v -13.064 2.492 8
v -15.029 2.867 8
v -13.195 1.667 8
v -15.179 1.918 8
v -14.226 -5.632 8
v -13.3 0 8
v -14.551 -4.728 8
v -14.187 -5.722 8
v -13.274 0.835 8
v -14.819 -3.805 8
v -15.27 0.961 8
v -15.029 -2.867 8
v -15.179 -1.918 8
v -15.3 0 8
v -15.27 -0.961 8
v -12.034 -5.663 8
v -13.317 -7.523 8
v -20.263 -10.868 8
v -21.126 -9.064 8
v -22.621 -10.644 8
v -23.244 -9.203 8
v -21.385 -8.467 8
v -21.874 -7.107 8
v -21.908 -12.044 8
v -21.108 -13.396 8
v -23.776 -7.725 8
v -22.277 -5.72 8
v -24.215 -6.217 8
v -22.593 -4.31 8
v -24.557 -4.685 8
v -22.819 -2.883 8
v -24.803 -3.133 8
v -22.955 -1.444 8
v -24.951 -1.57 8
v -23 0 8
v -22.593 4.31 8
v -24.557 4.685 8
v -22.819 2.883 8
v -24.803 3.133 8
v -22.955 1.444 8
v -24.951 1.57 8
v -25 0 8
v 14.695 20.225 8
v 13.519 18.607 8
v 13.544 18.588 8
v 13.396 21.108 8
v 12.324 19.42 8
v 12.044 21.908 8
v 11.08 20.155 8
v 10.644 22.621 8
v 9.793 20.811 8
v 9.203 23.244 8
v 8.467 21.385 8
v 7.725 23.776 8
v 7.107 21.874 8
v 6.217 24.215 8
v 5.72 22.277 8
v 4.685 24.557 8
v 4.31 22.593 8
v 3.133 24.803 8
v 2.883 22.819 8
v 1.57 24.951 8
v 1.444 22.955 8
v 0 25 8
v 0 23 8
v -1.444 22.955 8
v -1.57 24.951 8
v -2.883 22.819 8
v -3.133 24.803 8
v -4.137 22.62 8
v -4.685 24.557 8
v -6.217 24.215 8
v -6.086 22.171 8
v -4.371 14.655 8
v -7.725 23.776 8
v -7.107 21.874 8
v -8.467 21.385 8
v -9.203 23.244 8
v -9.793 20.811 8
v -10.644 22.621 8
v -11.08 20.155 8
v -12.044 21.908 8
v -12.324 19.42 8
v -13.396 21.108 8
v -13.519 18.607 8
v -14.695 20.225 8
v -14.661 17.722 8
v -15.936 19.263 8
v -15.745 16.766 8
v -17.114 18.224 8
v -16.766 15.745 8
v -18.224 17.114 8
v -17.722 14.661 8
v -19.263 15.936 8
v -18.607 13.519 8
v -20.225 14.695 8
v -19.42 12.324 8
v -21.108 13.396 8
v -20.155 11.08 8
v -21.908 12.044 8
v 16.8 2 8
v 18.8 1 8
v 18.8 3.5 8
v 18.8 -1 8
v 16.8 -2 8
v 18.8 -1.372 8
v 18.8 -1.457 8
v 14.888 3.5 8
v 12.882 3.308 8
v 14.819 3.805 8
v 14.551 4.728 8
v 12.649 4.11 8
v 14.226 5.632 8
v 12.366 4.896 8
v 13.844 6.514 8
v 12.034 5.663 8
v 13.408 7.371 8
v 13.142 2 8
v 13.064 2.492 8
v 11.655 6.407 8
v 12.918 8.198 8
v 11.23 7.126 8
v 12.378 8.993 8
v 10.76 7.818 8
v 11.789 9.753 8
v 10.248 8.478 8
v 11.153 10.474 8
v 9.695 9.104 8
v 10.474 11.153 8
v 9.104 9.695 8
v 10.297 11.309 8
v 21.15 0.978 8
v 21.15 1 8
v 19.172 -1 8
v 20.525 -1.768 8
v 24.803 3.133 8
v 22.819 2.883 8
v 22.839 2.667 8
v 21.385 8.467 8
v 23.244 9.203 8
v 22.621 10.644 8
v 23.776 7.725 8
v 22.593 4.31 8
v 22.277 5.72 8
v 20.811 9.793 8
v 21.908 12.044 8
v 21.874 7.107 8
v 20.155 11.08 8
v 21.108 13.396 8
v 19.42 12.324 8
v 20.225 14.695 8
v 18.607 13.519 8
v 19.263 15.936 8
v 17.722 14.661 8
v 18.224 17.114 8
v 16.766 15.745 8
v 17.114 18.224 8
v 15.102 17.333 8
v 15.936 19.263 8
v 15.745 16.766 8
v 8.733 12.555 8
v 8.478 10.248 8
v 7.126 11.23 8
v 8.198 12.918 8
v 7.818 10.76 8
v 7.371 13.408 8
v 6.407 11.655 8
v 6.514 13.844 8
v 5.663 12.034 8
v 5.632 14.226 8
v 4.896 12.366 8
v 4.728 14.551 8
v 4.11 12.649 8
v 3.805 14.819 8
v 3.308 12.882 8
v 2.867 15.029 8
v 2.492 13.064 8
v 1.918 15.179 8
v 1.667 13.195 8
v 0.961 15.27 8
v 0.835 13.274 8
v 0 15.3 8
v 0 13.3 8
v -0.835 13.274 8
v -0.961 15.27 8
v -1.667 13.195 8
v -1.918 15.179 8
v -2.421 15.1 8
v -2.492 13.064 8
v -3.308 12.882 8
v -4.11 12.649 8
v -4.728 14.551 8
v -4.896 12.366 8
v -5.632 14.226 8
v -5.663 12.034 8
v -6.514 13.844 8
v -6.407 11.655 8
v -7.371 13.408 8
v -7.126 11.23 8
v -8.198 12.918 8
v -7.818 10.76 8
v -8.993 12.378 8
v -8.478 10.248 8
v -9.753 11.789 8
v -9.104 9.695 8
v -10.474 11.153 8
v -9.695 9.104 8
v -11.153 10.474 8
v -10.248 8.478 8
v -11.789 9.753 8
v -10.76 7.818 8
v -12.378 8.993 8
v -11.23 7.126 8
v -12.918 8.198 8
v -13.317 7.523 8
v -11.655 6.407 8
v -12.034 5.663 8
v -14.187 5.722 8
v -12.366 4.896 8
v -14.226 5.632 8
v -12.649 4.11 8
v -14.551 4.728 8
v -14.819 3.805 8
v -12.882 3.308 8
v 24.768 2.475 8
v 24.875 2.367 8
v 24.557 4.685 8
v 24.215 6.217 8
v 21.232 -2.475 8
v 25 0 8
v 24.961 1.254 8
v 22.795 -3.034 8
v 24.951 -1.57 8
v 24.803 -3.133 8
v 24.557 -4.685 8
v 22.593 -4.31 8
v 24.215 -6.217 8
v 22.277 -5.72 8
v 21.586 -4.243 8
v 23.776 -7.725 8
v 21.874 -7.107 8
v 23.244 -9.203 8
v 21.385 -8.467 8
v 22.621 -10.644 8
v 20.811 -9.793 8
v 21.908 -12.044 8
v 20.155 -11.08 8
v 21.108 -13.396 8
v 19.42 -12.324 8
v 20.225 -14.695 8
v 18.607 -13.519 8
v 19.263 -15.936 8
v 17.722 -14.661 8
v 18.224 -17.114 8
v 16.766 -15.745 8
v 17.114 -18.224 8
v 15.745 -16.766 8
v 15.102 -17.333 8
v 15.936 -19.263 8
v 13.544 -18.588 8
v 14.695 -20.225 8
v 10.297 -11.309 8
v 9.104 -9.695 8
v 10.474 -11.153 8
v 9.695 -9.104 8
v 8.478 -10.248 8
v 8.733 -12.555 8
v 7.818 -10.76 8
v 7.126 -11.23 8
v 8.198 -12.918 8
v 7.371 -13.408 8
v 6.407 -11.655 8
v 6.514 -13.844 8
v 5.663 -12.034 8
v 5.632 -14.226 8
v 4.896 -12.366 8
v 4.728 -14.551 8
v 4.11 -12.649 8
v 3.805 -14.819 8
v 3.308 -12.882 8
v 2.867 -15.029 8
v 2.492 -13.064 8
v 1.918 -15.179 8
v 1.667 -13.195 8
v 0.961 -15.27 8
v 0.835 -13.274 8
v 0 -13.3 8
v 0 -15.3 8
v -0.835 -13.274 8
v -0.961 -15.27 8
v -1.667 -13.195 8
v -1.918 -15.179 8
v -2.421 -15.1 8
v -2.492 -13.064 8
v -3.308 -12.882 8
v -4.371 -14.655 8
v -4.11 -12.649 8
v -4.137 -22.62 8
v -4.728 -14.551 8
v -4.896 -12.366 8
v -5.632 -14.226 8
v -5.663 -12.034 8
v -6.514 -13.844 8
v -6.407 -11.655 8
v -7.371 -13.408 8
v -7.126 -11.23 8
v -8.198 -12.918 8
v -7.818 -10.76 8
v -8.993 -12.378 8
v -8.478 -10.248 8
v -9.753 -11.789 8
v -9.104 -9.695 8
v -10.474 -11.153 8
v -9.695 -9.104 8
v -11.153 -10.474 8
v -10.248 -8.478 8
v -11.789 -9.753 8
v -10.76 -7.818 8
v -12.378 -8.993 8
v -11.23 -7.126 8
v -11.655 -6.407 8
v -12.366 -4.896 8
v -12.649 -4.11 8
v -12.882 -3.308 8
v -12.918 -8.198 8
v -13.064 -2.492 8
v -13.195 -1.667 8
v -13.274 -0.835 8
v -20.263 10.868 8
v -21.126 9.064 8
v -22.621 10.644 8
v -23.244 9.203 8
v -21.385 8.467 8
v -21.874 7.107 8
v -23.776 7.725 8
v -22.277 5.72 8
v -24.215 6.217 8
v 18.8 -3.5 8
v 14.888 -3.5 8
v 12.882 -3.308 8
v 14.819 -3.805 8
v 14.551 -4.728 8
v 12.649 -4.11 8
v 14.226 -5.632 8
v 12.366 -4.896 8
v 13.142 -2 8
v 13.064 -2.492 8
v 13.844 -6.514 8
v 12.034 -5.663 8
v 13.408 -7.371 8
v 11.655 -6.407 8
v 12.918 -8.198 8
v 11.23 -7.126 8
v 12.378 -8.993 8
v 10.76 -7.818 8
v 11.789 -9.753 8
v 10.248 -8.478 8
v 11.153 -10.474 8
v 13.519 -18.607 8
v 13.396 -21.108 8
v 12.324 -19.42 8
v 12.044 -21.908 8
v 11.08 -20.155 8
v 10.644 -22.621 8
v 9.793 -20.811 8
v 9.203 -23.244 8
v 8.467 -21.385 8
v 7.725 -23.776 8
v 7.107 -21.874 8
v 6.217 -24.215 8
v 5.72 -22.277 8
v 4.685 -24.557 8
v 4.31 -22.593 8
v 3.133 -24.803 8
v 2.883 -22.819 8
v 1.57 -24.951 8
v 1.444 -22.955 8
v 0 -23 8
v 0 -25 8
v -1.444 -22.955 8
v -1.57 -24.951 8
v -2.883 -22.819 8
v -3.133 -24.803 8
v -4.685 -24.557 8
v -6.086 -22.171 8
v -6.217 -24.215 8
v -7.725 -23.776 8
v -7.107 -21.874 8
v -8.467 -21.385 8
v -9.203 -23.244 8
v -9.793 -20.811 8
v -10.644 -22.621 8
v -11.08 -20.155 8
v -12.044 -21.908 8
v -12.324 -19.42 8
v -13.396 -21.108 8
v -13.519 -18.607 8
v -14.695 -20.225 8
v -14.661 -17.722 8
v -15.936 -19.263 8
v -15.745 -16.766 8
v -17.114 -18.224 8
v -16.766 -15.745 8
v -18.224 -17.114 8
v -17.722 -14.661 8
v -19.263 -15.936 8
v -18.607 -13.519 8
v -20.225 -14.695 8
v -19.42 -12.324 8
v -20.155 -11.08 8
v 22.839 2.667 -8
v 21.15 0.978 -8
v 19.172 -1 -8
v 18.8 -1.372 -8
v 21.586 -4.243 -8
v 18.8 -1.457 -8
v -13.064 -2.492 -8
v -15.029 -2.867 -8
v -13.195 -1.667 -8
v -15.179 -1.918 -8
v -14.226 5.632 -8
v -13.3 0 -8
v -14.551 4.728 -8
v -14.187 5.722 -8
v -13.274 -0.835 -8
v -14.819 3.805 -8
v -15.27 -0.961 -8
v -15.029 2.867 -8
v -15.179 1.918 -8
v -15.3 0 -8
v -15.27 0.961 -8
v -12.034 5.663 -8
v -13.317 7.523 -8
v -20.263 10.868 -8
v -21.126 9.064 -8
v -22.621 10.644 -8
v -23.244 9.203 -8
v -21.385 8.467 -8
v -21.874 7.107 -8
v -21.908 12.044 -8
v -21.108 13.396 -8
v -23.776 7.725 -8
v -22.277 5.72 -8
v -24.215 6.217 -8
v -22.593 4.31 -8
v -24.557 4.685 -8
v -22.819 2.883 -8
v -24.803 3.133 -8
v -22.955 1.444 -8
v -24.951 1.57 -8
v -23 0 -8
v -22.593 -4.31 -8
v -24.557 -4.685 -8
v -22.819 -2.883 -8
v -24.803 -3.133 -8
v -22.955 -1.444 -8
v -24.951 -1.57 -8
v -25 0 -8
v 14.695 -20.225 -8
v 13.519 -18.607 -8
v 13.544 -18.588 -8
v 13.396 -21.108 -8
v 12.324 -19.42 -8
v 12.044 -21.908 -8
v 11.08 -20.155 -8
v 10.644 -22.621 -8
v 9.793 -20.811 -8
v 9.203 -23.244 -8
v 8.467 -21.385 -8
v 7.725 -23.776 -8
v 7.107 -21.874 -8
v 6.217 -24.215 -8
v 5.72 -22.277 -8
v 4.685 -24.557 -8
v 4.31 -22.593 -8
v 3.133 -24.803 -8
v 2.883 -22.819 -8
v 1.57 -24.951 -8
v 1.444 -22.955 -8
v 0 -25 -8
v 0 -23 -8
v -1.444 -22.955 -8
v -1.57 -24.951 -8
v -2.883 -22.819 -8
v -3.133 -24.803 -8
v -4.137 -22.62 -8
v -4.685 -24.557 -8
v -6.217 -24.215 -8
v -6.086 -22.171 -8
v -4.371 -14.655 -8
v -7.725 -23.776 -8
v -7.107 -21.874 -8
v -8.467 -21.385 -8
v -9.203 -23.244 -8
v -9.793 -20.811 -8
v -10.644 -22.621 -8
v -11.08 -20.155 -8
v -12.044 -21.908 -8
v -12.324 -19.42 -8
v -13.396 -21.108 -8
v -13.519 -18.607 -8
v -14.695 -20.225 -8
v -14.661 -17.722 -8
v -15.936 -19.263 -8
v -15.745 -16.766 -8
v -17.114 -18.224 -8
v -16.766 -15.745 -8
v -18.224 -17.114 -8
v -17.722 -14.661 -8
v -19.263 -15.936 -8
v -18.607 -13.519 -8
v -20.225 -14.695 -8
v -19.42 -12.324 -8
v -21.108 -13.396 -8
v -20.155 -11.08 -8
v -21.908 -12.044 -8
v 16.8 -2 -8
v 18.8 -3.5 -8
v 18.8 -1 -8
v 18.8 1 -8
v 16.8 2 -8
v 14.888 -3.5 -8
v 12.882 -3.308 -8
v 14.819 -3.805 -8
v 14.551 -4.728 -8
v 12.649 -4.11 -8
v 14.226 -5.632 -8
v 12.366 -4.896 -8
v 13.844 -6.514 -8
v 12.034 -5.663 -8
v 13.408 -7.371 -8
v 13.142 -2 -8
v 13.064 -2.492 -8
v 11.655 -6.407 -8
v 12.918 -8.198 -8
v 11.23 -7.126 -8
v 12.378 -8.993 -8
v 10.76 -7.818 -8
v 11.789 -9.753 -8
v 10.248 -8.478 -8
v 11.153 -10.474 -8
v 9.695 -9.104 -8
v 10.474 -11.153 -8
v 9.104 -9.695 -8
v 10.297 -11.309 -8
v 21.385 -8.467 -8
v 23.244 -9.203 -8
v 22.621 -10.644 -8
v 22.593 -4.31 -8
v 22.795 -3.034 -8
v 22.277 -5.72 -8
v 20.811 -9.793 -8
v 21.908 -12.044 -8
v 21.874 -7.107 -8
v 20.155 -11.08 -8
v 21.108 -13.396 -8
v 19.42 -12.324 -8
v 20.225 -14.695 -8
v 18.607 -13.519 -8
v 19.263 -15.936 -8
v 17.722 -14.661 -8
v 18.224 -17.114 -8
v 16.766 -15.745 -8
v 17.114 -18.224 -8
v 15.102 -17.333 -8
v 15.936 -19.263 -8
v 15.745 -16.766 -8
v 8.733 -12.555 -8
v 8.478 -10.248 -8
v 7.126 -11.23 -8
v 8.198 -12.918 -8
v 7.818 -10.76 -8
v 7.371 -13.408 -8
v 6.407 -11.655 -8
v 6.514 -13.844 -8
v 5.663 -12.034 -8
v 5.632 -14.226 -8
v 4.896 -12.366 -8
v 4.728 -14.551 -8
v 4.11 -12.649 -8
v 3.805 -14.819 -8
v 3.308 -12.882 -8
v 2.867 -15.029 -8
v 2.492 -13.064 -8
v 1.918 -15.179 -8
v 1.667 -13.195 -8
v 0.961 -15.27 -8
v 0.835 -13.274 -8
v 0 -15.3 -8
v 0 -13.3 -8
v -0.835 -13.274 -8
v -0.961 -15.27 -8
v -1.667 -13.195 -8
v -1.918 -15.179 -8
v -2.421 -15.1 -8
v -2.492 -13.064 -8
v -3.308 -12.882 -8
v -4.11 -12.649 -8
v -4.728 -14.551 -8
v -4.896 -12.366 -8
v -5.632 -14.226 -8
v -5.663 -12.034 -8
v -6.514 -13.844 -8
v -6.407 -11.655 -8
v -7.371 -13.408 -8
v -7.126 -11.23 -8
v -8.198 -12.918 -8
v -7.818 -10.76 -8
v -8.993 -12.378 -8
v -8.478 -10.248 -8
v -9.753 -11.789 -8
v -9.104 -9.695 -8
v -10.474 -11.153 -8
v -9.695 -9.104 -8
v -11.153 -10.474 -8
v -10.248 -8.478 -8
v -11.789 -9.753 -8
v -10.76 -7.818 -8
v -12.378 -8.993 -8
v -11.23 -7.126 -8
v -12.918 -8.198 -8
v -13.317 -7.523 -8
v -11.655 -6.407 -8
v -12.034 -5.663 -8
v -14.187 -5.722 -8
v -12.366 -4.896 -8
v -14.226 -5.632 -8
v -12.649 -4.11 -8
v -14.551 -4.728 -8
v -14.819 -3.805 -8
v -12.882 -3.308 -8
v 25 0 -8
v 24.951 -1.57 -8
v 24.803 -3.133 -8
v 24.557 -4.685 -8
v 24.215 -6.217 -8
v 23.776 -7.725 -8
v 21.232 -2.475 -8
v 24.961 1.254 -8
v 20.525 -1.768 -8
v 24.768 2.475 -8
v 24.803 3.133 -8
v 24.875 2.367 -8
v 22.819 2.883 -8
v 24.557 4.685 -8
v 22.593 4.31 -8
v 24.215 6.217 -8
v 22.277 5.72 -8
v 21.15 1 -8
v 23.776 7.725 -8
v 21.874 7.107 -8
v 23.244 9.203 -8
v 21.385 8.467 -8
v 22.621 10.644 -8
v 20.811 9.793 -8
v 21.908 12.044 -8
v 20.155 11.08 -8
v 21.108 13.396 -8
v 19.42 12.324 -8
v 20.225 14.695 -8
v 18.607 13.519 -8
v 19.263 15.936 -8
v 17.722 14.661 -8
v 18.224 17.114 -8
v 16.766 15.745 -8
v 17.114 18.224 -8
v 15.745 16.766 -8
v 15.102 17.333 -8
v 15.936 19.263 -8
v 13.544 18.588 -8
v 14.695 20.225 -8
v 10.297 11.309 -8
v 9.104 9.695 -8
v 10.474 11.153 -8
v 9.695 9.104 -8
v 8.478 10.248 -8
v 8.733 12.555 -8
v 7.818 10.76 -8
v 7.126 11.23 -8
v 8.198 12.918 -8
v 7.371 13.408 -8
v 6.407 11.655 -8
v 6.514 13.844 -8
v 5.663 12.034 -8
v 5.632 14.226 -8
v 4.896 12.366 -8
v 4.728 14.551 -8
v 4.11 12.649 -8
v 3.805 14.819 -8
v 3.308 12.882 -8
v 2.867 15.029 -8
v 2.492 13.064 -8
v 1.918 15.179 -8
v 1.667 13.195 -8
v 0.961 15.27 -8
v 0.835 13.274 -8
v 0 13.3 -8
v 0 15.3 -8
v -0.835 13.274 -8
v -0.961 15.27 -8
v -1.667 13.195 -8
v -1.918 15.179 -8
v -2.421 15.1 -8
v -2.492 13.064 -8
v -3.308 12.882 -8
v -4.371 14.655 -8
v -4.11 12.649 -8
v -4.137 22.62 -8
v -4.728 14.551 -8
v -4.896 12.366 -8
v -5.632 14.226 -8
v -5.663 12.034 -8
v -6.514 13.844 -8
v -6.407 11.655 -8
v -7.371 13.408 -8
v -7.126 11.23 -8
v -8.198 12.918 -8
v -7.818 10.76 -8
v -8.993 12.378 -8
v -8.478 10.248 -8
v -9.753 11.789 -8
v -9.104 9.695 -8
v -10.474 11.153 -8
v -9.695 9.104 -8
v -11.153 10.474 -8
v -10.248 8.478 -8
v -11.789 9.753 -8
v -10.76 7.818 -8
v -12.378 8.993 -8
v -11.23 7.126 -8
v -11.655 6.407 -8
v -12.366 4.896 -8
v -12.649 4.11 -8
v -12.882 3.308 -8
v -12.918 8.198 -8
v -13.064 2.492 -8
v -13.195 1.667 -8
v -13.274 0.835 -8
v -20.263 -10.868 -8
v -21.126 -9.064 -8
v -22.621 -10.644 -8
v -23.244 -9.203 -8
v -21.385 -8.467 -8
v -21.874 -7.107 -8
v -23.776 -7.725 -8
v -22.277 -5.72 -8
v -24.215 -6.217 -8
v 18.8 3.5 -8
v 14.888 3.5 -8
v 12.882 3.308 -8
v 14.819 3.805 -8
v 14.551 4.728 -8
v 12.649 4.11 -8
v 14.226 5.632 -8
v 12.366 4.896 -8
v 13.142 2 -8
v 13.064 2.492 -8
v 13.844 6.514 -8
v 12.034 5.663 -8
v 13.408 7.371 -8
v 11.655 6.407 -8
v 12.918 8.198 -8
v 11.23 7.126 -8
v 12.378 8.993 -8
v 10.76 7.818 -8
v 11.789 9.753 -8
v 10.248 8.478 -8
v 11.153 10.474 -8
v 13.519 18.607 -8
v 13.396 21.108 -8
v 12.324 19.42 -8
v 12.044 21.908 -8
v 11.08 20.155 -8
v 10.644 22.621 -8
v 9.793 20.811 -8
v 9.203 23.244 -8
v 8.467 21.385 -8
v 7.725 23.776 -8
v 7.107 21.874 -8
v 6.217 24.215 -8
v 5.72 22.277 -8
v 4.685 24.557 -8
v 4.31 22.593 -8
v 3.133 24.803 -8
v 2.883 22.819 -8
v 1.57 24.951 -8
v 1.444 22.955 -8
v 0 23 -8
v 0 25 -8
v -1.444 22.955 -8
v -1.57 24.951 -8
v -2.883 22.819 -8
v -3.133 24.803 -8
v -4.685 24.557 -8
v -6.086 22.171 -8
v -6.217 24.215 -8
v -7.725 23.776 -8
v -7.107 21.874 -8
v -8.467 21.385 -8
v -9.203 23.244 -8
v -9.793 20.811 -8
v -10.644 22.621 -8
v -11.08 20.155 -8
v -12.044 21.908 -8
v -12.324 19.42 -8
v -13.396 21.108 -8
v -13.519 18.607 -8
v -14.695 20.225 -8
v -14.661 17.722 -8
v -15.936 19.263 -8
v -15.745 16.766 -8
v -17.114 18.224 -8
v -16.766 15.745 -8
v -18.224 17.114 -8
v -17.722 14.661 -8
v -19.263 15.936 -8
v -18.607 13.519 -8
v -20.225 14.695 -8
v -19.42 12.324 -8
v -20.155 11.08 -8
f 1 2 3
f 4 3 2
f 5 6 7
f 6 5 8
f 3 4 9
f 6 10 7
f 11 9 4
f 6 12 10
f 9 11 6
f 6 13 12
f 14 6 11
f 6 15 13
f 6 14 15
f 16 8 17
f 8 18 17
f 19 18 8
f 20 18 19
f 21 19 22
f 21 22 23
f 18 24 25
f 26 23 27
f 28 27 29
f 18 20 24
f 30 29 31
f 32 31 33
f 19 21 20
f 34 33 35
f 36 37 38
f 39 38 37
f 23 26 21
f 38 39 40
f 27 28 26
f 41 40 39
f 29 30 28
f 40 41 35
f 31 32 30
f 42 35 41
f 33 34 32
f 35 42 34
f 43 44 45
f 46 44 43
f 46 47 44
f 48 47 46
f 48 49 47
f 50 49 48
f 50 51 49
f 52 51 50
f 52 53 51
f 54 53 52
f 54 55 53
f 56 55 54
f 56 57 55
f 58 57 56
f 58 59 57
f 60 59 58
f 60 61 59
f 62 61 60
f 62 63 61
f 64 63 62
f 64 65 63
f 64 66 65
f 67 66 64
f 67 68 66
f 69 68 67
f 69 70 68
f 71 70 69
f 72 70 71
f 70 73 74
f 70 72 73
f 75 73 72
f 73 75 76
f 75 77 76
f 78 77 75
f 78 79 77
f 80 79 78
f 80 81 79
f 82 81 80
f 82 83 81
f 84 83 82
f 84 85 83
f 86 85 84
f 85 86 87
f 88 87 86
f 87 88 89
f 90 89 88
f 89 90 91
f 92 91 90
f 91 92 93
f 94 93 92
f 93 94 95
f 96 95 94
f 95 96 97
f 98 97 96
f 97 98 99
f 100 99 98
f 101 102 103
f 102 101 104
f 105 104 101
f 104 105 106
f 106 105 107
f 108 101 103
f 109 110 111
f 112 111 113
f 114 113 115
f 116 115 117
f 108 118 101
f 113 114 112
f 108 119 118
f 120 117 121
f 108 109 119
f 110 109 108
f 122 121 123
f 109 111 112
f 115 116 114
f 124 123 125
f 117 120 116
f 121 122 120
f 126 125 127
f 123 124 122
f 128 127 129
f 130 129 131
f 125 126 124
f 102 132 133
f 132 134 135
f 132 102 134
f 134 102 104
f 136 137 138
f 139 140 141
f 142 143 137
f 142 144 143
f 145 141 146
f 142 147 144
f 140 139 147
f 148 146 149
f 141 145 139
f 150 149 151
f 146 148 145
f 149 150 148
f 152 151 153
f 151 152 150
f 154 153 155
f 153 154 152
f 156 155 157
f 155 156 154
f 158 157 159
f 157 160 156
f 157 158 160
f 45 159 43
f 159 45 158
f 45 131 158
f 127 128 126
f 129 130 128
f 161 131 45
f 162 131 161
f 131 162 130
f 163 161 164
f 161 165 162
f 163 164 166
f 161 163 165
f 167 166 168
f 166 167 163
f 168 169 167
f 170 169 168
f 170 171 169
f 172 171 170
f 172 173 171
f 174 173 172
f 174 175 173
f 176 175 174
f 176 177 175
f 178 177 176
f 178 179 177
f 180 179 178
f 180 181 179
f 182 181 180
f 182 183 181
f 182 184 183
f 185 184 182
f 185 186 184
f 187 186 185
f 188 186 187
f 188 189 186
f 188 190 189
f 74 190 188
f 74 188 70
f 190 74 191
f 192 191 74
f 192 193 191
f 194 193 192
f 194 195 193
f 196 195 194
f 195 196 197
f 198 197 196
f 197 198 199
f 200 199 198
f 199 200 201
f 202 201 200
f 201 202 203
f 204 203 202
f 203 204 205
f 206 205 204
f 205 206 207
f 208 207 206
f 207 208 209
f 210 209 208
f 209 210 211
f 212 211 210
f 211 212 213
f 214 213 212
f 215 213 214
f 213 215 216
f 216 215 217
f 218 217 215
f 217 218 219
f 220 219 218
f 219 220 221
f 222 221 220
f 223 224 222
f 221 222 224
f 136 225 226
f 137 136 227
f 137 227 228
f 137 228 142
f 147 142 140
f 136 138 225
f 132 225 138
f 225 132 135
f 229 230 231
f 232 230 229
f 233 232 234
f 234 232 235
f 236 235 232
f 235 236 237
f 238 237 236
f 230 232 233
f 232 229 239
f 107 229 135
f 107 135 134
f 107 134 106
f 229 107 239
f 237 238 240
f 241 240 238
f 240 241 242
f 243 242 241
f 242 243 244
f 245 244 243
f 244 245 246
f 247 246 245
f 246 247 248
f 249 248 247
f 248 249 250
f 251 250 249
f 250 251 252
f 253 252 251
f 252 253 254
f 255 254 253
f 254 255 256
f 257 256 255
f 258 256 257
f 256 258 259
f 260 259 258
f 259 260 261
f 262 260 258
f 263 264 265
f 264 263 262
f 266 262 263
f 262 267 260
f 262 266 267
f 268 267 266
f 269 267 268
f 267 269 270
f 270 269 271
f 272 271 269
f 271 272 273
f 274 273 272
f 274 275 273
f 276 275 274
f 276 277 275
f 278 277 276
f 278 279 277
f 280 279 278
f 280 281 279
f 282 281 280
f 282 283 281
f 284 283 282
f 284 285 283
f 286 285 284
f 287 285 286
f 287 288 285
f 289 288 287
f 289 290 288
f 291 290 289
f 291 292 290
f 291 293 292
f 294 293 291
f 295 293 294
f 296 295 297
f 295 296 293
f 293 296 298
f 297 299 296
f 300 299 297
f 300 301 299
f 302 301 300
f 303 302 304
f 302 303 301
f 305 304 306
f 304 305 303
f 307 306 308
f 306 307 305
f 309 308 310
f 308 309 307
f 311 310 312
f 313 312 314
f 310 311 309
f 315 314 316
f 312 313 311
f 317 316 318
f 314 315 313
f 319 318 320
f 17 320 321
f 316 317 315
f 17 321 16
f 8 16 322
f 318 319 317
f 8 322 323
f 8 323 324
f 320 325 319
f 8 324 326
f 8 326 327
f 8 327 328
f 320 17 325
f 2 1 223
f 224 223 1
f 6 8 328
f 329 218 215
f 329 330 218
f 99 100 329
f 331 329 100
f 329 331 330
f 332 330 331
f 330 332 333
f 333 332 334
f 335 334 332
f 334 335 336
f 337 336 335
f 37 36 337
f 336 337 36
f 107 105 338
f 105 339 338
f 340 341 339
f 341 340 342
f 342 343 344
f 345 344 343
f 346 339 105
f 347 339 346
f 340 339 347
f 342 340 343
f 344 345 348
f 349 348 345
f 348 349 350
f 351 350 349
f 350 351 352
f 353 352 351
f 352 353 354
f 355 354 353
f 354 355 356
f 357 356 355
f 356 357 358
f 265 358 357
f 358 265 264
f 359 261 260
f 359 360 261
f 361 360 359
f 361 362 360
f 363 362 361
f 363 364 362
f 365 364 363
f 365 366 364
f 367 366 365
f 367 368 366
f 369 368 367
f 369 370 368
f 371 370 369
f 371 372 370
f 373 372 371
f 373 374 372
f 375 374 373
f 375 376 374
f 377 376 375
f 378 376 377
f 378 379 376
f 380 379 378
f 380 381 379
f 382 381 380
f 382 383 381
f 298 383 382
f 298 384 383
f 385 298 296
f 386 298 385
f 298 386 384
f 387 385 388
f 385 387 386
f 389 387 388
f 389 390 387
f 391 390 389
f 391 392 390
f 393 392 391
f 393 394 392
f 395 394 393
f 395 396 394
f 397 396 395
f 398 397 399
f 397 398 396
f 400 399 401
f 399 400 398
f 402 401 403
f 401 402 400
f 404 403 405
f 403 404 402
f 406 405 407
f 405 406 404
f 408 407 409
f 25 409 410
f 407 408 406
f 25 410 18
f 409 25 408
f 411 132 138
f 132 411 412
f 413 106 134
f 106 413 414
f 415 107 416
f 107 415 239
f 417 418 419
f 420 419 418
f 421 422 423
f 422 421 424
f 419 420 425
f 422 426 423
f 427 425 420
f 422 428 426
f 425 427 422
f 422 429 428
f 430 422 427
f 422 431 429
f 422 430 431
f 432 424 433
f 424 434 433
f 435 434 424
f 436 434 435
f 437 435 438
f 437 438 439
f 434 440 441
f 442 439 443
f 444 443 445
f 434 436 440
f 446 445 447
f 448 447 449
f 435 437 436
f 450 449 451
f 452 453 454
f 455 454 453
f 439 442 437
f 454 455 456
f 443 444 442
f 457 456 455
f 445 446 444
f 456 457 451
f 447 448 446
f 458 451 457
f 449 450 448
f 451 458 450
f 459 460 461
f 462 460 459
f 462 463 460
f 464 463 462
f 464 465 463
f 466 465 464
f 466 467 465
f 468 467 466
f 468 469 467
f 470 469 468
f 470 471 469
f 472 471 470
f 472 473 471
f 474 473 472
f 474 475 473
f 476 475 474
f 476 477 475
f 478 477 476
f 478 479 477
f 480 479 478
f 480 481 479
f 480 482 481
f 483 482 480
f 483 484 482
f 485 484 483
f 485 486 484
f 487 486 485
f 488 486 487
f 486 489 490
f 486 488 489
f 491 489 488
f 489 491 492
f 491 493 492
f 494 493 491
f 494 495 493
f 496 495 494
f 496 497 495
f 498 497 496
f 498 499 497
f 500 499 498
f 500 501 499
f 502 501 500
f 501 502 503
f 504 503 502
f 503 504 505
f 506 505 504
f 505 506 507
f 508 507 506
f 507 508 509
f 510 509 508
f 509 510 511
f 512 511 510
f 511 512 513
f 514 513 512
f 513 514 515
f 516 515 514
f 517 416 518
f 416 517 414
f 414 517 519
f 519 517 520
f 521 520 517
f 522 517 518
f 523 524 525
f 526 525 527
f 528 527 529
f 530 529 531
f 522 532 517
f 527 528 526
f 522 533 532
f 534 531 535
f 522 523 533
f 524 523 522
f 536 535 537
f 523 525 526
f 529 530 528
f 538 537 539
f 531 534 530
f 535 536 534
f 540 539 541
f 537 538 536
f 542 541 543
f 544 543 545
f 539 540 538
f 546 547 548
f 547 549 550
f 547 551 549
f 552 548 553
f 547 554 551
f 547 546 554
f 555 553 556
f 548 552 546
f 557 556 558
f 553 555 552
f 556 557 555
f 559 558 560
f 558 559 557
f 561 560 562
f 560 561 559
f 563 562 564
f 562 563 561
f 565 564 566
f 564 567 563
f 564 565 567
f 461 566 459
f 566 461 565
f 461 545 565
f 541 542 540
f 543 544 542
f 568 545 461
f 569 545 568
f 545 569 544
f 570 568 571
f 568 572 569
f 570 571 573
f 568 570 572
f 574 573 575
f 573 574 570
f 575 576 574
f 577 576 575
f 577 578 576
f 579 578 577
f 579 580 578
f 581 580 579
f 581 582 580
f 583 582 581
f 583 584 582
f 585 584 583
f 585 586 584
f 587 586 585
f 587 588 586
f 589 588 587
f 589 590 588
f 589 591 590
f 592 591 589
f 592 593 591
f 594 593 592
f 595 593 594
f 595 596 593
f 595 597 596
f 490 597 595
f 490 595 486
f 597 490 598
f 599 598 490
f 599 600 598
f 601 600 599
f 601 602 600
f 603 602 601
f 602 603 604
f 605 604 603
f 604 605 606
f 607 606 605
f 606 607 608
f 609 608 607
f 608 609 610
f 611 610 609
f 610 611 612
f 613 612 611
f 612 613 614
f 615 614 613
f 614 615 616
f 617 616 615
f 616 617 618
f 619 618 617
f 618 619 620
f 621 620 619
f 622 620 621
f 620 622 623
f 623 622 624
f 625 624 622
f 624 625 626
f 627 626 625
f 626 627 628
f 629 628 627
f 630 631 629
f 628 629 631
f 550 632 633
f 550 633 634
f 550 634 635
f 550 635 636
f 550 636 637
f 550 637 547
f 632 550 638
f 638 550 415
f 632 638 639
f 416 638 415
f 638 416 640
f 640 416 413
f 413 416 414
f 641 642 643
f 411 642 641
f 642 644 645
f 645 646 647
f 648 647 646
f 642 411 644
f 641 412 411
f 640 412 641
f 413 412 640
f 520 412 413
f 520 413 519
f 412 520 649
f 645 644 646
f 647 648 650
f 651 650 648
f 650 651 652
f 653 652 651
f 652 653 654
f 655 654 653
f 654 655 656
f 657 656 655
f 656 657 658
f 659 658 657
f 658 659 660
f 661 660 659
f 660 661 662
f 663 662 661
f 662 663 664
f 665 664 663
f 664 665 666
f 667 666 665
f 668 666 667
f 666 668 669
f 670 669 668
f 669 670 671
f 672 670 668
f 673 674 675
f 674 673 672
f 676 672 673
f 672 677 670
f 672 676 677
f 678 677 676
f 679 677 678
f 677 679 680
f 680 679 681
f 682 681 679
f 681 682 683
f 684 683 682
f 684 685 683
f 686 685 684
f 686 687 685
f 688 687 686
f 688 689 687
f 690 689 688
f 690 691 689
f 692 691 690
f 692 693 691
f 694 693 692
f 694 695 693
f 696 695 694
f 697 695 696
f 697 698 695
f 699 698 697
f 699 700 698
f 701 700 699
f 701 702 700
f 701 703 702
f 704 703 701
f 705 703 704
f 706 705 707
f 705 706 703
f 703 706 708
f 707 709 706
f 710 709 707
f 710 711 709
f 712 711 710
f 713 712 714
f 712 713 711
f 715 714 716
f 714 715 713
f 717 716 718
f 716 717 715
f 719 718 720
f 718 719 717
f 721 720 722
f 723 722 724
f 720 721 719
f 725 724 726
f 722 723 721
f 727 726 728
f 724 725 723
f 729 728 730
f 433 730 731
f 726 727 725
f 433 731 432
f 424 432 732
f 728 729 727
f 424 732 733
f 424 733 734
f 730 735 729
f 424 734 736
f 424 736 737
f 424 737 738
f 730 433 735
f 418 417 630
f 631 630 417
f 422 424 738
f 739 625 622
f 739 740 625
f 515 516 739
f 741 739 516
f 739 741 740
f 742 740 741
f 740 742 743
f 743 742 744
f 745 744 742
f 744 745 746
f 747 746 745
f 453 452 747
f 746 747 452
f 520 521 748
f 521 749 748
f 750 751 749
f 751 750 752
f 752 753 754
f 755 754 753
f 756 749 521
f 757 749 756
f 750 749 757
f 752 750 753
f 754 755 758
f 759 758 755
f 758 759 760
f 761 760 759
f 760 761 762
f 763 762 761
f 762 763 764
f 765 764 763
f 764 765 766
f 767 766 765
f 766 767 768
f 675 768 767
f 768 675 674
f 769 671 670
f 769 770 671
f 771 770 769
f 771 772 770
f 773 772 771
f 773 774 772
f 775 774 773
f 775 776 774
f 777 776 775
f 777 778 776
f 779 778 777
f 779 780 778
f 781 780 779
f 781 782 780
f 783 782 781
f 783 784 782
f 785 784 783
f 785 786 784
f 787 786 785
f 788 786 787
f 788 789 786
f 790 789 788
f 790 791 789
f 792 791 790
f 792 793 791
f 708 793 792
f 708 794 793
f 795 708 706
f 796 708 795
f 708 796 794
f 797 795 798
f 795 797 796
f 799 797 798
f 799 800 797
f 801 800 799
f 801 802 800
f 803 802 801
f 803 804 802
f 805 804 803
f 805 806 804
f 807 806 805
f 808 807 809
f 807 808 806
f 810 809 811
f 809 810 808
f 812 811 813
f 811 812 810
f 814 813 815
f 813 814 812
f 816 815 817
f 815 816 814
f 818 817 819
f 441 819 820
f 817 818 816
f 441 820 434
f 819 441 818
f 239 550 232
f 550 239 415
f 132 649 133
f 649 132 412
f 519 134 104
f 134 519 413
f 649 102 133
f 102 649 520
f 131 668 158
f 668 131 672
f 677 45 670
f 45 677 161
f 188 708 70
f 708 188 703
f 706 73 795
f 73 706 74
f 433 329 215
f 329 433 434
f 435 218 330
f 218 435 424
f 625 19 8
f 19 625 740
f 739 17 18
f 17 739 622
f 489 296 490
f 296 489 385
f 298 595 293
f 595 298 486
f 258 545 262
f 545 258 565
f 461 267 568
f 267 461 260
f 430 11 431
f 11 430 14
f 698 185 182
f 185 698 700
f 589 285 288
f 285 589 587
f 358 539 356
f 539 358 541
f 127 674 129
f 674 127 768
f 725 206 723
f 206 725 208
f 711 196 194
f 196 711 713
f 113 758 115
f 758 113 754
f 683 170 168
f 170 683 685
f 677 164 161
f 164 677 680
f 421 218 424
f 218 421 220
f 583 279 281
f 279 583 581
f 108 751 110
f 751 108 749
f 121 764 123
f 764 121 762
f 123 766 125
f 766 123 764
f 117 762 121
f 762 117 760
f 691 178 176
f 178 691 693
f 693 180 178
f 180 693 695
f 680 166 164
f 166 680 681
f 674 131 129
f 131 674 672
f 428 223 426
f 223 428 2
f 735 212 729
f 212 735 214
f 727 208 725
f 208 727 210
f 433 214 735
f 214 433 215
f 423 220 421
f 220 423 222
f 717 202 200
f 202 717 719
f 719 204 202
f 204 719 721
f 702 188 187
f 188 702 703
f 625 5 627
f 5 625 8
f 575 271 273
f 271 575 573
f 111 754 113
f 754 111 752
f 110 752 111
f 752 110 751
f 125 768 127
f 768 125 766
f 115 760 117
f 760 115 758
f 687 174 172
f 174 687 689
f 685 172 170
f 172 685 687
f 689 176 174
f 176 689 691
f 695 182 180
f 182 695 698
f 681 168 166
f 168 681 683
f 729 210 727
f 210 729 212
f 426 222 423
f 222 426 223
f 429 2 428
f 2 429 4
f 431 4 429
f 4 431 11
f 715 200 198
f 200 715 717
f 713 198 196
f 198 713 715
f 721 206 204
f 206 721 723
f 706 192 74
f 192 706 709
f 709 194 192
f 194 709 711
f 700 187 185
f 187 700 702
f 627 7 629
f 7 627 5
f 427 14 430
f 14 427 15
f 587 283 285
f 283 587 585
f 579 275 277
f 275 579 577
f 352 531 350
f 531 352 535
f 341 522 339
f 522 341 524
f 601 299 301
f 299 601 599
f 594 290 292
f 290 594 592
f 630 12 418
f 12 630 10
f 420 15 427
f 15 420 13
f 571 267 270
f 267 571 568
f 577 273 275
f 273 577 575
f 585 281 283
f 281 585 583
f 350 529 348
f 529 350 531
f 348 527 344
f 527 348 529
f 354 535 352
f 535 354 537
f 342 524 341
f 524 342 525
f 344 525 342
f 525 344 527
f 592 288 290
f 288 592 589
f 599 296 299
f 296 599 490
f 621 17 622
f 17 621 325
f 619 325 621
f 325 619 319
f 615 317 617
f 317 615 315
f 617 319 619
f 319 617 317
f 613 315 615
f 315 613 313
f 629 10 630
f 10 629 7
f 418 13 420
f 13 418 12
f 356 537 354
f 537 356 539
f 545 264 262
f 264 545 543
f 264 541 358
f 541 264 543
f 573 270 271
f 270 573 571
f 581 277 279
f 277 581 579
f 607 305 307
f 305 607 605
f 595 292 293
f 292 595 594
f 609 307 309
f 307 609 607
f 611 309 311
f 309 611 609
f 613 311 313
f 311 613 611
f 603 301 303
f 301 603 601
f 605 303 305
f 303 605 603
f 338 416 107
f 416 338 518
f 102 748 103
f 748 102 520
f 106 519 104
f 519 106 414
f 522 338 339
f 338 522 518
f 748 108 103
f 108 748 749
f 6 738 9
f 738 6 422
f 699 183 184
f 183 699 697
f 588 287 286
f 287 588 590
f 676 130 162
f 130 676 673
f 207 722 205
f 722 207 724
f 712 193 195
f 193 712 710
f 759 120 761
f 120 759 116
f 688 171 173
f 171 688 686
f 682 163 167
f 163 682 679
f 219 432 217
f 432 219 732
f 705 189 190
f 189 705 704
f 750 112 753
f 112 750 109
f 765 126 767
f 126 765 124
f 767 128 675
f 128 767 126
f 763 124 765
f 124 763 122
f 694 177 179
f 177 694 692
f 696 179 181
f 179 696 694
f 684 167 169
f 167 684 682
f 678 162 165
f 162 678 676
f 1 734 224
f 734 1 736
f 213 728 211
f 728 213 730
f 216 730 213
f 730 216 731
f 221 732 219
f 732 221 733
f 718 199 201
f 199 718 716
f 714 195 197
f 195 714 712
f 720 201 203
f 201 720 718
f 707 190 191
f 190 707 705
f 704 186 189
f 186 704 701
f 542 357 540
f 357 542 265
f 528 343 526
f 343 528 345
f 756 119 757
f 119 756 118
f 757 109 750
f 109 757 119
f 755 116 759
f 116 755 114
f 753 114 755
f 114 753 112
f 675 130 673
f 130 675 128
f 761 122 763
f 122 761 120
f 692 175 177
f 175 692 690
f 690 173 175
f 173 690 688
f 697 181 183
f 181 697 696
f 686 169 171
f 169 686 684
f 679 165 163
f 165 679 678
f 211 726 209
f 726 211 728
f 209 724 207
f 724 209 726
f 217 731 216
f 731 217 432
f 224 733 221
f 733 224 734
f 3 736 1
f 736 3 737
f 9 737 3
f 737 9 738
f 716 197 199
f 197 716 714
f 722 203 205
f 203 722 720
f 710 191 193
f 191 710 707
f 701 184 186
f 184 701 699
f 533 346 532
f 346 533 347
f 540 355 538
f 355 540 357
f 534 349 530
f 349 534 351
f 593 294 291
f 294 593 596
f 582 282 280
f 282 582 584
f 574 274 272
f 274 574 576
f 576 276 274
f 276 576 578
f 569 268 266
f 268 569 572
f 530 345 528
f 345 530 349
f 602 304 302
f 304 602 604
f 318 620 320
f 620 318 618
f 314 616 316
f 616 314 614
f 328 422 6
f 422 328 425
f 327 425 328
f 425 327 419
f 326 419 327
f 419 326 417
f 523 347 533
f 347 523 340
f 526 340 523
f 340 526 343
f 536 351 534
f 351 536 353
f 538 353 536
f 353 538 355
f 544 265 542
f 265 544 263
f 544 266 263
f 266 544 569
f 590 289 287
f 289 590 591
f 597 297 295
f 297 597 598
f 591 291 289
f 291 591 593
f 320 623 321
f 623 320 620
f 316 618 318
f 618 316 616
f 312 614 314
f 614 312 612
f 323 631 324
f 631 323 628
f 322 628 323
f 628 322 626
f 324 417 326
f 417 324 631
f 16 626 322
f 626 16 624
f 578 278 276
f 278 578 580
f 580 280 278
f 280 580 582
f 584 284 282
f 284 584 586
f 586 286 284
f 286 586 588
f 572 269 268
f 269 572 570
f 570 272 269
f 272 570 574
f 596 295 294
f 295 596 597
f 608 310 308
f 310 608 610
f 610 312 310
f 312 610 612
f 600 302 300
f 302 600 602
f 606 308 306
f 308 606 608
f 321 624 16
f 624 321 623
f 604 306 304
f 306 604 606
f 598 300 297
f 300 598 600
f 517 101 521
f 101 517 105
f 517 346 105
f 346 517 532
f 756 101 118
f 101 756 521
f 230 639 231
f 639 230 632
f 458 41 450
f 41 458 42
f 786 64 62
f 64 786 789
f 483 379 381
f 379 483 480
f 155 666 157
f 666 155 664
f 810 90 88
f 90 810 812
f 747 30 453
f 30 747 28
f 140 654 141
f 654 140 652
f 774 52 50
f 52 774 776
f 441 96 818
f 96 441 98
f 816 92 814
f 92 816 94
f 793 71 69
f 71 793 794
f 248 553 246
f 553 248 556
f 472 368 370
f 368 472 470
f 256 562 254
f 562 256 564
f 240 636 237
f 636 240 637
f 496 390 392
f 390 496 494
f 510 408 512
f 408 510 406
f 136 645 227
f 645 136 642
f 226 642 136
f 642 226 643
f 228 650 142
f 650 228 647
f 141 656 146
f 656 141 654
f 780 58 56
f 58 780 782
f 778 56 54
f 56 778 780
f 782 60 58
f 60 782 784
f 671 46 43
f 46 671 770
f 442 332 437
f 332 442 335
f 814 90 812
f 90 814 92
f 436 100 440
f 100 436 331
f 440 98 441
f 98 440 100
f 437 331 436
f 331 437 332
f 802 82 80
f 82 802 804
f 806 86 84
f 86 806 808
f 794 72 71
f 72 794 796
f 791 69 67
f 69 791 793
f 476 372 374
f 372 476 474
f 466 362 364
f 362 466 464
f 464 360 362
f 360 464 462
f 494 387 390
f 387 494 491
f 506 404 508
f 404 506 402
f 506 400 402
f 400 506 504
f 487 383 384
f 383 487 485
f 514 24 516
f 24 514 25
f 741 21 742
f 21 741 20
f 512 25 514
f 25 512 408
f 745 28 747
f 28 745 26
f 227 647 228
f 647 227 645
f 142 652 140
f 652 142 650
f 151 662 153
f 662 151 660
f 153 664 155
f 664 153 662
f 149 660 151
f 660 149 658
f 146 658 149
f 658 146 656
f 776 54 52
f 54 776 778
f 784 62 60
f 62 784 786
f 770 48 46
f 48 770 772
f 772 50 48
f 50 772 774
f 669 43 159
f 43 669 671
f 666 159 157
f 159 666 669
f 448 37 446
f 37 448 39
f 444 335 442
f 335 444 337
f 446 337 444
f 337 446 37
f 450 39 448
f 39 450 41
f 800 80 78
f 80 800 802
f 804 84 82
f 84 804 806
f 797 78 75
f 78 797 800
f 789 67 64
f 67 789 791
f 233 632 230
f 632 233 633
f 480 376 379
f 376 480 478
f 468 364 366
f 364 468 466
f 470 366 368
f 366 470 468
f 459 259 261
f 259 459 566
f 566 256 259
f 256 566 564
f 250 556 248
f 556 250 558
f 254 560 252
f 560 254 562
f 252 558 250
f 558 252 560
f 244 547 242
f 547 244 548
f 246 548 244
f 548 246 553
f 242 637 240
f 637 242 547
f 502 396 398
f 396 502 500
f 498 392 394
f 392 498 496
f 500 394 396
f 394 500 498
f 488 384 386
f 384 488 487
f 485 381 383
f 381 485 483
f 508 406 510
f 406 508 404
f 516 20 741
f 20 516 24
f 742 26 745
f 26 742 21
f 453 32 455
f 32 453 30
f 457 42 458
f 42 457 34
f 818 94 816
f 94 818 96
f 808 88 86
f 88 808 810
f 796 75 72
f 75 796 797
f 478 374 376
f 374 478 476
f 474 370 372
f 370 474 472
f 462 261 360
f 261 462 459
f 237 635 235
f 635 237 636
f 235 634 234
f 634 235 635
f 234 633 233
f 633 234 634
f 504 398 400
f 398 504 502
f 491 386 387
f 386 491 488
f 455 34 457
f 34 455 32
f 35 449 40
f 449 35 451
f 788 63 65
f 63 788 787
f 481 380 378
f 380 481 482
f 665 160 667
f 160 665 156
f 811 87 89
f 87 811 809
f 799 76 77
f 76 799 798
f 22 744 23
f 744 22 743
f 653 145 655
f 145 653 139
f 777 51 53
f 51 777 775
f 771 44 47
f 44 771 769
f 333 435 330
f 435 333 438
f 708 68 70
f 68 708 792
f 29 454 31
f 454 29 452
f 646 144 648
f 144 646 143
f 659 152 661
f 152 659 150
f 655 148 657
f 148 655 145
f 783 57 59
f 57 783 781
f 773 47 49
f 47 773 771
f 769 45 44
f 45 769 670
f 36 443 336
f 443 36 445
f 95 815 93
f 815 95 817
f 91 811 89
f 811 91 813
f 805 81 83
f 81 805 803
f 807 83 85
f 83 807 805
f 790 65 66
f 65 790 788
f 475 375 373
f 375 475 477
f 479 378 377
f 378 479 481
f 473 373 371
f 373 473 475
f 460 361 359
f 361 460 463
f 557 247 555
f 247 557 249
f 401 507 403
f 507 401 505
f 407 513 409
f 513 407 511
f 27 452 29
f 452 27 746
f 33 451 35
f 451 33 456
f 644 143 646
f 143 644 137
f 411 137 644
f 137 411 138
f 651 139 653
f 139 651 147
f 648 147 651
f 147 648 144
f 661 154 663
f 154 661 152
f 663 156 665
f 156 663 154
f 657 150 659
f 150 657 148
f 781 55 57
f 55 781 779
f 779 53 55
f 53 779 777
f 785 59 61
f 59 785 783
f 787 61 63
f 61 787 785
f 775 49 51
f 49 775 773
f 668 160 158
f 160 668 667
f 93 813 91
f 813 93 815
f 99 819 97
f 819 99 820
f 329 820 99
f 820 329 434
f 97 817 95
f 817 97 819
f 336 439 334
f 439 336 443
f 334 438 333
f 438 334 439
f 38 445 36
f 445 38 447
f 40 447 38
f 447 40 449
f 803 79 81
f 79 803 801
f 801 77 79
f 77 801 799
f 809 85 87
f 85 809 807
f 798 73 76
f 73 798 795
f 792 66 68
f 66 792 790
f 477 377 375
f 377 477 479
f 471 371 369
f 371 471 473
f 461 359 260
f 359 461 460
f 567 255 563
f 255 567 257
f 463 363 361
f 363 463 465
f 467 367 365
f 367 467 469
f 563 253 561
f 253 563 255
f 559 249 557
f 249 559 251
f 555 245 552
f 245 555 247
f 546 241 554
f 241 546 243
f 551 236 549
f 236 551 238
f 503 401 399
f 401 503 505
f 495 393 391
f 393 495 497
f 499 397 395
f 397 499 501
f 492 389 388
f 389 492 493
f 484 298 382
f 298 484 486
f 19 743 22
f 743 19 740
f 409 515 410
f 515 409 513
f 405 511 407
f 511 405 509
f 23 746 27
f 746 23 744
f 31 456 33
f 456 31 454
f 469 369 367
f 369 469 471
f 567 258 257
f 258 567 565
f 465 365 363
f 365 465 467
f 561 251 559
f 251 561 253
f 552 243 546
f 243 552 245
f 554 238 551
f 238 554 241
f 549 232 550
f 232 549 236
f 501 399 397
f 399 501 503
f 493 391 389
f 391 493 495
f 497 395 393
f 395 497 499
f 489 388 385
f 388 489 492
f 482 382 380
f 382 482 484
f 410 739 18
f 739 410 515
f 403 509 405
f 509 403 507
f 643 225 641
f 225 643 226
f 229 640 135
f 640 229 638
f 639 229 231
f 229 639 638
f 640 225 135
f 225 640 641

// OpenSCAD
module core (oW, decoy = false) {
	coreH = 16;
	iW = 15.3;
	oW = oW / 2;
     $fn = 100;
    
	module cyl (R) {
		cylinder(r = R, h = coreH, center = true);
	}

	module inner_core_shape (coreR, trans, cubeW, cubeL) {
		union () {
			cyl(coreR);
			translate([trans, 0, 0]) {
				cube([cubeW, cubeL, coreH], center = true);
			}
		}
	}

	module inner_core () {
		difference () {
			inner_core_shape(iW, iW + .5, 6, 7);
			inner_core_shape(iW - 2, iW - .5, 4, 4);
		}
	}
	module clip () {
		translate([oW - 2, 0, 0]) {
			rotate(45, [0, 0, 1]){
				cube([6, 1, coreH], center = true);
			}
		}
	}

	module outer_clip () {
		translate([oW - 2, 0, 0]) {
			difference() {
				rotate(45, [0, 0, 1]){
					cube([8, 4, coreH], center = true);
				}
				translate([3.9, 0, 0]) {
					cube([6, 8, coreH], center = true);
				}
			}
		}
	}

	module outer_core () {
		difference () {
			union () {
				difference () {
					cyl(oW);
					cyl(oW - 2);
				}
				outer_clip();
			}
			clip();
		}
	}

	module supports (x) {
		for (i = [0 : x]) {
			rotate ([0, 0, i * 360 / (x + 1)]) {
				if (i == 0) {
					translate ([iW + ((oW - iW) / 2) - 1, 0, 0]) {
						cube([oW - iW - 5.7, 2, coreH] ,center = true);
					}
				} else {
					translate ([iW + ((oW - iW) / 2) - 1, 0, 0]) {
						cube([oW - iW - 1, 2, coreH] ,center = true);
					}
				}
			}
		}
	}

	union () {
		inner_core();
		outer_core();
		supports(6);
	}	
}

core(50, true);
